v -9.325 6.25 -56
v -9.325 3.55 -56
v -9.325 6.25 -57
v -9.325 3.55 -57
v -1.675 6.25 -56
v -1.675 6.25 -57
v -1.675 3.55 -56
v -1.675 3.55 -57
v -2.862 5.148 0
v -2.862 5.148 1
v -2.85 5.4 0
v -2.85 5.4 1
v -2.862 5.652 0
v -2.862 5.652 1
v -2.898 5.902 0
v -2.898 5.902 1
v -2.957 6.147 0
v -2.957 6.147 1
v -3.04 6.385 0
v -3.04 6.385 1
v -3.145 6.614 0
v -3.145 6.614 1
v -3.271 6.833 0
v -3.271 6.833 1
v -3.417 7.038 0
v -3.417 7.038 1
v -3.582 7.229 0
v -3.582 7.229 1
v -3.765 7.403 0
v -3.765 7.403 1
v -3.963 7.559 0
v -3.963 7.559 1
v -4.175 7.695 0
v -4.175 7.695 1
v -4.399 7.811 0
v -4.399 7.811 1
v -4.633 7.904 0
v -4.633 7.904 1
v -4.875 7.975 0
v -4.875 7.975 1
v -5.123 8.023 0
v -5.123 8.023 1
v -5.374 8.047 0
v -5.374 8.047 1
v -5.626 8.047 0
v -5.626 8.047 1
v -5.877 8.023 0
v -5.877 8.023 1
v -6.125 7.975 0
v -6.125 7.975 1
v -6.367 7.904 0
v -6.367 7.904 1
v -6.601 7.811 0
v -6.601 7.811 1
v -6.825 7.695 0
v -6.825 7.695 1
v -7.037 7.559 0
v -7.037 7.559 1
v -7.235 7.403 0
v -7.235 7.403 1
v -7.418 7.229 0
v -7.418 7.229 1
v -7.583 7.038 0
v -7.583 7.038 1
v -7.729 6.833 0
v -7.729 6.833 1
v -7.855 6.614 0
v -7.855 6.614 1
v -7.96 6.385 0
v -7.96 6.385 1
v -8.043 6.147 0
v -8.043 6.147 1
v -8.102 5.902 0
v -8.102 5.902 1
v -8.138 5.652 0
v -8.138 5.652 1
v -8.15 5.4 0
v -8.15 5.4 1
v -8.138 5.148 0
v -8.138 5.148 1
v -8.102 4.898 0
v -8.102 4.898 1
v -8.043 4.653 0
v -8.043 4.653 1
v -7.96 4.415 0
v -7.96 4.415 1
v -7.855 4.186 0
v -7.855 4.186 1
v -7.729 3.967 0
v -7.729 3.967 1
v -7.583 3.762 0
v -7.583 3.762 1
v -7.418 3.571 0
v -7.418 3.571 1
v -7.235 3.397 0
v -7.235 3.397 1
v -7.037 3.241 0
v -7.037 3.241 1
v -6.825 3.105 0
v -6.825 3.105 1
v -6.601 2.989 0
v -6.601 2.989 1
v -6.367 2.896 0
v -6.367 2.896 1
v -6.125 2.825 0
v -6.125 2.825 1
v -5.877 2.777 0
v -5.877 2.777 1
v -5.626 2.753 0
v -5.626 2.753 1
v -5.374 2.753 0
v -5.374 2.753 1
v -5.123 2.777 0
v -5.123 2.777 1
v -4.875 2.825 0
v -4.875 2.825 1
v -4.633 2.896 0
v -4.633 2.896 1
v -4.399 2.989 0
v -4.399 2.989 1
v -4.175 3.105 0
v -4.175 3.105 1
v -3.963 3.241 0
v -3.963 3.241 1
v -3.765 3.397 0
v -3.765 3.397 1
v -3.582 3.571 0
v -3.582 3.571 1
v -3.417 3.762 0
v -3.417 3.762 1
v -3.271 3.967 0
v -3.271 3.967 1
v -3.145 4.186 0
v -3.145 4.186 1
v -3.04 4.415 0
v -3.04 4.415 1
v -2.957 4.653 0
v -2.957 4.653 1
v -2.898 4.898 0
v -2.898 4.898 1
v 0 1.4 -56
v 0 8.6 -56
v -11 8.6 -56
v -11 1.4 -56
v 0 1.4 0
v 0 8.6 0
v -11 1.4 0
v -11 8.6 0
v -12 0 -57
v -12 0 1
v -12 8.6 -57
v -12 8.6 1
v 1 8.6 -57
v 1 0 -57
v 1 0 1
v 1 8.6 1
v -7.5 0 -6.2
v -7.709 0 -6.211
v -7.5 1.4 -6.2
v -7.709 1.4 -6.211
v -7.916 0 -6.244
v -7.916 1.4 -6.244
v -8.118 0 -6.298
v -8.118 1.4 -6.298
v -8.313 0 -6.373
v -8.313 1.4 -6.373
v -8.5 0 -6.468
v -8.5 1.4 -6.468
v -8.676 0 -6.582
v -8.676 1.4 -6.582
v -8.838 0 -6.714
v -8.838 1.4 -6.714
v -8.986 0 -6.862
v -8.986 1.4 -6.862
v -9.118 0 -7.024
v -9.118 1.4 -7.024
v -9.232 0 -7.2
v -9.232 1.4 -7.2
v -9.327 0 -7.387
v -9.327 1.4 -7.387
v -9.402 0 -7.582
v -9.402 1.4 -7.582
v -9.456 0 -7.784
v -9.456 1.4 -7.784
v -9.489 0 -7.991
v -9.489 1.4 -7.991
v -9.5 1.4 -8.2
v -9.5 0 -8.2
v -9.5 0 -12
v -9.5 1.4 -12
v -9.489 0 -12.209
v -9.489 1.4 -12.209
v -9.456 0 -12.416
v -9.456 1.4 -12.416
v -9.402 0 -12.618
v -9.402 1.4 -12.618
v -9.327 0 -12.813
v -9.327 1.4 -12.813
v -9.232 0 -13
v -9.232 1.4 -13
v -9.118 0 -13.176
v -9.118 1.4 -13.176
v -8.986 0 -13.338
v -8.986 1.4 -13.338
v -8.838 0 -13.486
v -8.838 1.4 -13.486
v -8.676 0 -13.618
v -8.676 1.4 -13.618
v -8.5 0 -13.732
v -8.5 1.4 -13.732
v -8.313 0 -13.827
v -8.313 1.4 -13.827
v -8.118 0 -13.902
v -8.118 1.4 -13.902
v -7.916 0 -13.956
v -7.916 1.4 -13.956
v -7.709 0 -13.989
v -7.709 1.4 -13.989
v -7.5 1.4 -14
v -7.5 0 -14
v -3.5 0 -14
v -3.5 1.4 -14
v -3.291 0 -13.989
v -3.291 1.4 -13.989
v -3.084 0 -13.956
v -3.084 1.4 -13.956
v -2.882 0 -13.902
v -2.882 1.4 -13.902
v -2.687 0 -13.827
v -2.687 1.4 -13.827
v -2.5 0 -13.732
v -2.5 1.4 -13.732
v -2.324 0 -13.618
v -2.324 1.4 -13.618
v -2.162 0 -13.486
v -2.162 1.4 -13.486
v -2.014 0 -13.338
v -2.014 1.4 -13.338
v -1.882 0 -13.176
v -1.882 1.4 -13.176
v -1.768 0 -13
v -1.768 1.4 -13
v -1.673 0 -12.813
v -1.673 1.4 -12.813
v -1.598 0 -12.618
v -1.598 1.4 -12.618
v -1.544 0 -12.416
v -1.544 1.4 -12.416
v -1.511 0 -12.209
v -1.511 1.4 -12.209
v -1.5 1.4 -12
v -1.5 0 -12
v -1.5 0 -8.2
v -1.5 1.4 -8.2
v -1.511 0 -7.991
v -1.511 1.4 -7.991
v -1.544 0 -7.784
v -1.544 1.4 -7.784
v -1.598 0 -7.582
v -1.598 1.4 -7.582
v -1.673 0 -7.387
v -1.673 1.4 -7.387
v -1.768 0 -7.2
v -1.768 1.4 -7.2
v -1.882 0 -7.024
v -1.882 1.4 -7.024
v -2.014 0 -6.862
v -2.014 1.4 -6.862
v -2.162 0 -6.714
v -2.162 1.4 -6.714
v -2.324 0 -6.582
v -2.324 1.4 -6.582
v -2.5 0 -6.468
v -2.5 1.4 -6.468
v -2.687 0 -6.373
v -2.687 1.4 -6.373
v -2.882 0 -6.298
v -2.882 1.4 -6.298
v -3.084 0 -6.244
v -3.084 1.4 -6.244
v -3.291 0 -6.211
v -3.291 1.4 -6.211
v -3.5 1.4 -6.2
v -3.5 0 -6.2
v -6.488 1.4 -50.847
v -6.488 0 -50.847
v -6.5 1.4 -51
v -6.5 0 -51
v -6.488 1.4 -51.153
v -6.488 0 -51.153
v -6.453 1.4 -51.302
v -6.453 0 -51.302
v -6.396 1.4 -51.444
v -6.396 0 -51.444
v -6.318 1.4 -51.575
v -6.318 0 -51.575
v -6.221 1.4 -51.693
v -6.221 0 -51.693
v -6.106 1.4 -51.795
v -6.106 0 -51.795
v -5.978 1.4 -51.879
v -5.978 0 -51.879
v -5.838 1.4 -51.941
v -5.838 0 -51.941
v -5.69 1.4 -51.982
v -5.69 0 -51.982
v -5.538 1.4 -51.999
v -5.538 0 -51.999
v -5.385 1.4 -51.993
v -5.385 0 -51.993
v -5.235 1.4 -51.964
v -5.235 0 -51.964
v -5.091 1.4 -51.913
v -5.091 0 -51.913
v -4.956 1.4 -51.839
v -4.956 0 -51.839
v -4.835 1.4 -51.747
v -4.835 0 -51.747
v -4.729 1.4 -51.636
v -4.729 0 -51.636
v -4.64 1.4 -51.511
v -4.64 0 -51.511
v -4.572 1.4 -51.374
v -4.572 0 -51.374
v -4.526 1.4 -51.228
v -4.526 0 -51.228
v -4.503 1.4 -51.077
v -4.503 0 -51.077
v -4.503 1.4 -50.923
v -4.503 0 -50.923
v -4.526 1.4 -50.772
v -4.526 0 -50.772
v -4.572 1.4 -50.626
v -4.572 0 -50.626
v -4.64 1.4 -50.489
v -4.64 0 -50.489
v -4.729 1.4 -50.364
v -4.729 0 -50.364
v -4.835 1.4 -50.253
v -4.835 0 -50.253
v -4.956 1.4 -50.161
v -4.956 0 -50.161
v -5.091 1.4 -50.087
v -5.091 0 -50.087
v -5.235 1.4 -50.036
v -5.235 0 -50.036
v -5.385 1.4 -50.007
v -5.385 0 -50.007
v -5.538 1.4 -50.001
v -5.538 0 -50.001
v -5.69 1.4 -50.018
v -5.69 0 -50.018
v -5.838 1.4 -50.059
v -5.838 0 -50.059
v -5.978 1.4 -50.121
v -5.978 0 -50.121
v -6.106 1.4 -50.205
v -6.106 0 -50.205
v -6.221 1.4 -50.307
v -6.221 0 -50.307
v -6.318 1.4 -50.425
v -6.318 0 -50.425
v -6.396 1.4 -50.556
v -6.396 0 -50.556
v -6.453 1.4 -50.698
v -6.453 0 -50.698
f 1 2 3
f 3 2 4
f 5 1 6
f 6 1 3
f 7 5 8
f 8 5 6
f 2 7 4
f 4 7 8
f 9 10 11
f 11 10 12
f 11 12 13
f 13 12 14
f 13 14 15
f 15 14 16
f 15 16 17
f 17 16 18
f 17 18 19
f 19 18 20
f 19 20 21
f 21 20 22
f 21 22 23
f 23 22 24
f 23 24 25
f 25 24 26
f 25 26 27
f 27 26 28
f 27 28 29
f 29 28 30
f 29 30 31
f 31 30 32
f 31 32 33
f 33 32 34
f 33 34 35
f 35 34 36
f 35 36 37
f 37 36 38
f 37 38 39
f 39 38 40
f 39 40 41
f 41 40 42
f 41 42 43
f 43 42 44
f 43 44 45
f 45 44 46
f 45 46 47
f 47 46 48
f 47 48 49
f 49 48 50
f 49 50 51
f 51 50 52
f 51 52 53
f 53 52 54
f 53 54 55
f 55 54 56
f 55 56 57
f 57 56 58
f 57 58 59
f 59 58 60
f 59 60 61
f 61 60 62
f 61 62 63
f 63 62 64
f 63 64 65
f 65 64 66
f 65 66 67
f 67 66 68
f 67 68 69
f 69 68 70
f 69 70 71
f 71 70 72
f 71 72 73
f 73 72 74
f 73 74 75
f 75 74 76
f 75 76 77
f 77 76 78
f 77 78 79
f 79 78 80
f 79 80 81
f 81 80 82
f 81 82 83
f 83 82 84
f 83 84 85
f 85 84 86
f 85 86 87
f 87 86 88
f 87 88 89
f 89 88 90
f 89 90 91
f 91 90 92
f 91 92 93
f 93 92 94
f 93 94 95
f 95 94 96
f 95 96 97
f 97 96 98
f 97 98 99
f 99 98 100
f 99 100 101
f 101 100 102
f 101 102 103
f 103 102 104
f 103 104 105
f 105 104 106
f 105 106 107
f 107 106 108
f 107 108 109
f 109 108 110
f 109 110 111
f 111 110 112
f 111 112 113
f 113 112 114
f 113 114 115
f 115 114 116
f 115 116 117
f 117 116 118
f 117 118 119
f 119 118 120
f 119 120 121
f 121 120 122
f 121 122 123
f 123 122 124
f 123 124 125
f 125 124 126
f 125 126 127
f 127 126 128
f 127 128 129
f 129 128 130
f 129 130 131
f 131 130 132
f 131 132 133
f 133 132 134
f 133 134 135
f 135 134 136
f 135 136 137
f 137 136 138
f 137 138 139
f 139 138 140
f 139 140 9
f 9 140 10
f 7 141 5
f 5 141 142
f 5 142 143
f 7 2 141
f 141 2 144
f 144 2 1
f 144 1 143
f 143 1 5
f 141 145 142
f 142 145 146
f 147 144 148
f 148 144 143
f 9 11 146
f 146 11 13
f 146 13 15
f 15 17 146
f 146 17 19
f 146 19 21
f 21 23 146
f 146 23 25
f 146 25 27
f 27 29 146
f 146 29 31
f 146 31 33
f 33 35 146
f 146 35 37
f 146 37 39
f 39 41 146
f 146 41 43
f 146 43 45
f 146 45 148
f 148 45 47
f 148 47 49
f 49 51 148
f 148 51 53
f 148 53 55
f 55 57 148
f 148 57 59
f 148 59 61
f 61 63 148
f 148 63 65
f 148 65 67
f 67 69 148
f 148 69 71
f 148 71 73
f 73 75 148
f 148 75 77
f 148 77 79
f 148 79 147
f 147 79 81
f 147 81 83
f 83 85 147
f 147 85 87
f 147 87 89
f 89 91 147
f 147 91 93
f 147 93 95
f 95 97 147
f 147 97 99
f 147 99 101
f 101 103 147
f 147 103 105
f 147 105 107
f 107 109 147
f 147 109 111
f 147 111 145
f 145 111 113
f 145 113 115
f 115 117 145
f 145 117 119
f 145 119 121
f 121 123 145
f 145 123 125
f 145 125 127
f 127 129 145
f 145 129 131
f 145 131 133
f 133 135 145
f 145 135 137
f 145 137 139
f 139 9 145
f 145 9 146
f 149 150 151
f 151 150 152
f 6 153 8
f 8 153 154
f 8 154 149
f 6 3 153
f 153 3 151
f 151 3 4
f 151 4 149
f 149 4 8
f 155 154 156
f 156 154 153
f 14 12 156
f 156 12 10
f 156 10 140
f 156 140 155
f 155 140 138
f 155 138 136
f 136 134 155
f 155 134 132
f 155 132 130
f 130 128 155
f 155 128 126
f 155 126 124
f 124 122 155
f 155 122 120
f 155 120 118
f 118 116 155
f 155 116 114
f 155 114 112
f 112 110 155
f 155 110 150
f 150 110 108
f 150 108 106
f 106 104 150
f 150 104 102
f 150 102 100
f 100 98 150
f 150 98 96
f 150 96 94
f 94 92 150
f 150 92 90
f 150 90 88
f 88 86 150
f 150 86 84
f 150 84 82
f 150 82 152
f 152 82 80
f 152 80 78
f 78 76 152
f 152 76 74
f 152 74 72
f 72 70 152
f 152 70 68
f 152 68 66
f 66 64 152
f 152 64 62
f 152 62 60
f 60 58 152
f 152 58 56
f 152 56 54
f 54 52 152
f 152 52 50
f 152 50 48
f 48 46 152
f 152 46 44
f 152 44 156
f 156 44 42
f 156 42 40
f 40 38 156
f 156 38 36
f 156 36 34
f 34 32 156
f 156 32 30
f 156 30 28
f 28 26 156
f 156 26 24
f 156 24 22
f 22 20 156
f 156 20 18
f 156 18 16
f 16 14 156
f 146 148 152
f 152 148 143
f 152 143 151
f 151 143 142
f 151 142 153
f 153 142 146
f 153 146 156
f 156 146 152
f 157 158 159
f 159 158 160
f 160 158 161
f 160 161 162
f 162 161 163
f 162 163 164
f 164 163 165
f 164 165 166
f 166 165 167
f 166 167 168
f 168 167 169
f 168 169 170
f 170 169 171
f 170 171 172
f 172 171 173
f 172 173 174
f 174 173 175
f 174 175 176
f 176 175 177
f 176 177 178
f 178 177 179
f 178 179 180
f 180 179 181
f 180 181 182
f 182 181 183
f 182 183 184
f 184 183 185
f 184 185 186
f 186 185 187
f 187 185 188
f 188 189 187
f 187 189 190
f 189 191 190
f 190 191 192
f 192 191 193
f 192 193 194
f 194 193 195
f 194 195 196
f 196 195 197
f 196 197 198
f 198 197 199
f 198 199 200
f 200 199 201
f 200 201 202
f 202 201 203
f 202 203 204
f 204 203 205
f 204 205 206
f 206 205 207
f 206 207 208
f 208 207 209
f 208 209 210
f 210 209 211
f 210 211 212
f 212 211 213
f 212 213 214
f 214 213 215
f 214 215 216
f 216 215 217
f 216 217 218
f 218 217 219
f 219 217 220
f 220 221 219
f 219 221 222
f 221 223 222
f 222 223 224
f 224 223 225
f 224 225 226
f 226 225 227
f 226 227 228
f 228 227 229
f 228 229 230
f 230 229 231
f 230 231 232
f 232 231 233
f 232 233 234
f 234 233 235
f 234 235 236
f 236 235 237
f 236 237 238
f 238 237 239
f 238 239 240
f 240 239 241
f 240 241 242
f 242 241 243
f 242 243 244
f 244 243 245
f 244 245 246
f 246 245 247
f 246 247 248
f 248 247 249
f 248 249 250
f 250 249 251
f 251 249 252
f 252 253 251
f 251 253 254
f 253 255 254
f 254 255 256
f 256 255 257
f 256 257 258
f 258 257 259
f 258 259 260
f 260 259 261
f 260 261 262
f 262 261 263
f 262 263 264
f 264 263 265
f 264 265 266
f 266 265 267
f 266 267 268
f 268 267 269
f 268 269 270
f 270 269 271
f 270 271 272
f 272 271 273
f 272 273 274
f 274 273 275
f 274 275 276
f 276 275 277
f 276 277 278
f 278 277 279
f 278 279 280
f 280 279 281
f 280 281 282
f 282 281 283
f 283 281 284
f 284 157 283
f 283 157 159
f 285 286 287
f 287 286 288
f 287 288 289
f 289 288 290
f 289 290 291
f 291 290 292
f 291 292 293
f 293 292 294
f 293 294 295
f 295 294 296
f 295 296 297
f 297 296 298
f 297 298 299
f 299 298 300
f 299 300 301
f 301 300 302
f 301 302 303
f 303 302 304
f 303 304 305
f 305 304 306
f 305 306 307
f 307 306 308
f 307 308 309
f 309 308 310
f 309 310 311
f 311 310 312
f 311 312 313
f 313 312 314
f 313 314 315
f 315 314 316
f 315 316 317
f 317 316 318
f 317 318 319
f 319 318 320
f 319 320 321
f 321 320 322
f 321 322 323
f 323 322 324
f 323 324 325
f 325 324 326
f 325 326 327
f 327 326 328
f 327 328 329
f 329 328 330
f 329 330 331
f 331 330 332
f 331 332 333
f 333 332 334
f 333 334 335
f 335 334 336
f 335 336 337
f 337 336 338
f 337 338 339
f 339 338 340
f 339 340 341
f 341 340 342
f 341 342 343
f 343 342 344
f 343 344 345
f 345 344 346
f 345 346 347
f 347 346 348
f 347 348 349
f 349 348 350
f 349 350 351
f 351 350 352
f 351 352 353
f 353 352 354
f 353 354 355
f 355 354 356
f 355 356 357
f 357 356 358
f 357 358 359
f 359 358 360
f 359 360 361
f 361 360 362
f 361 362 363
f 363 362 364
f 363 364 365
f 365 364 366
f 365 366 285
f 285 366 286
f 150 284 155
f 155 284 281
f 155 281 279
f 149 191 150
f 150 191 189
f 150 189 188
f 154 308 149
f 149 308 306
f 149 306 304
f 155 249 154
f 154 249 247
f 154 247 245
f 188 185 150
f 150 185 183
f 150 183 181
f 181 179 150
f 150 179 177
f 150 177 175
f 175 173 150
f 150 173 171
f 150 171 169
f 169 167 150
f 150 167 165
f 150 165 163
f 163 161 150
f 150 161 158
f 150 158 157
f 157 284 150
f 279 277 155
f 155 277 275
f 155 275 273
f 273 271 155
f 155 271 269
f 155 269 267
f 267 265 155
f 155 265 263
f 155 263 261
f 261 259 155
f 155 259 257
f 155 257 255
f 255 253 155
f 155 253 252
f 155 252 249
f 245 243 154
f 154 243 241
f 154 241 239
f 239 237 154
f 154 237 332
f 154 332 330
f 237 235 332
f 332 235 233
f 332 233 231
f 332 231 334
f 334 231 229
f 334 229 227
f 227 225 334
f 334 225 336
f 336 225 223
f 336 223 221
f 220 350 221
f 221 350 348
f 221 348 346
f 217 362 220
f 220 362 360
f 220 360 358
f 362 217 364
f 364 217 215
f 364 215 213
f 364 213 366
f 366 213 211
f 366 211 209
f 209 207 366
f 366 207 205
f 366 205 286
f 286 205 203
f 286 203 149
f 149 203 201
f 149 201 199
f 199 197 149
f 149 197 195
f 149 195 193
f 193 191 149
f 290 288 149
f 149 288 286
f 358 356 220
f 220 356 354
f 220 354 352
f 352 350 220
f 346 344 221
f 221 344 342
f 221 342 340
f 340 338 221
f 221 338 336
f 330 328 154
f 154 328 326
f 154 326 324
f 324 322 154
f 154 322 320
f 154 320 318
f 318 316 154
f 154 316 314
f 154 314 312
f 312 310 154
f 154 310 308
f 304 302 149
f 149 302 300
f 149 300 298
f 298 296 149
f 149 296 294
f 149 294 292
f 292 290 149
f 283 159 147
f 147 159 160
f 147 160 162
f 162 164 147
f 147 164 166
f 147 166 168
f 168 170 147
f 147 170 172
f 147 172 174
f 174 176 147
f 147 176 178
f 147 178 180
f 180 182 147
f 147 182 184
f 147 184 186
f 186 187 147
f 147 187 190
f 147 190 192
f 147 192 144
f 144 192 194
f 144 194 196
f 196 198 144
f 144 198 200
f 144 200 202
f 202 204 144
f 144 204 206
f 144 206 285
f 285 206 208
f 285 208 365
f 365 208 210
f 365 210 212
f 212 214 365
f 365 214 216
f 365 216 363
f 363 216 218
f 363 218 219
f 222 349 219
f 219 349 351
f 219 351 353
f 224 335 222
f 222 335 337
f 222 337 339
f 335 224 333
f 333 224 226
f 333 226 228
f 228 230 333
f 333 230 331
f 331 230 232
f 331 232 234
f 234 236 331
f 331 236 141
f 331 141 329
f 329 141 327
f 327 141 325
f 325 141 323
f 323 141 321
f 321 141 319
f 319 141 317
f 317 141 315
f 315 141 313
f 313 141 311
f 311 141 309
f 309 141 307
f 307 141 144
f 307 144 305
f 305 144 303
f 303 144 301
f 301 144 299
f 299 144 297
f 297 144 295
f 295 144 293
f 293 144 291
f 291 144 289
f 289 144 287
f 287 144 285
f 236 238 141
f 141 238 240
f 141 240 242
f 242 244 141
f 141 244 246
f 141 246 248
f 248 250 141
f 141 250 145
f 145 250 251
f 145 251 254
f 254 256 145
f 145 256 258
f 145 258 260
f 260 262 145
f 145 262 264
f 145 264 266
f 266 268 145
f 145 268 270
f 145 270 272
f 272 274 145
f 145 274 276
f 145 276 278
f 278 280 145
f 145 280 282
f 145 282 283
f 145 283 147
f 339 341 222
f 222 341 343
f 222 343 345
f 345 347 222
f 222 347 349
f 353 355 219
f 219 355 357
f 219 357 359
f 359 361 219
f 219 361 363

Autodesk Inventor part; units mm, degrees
ref_plane "YZ Plane" through (0, 0, 0) normal (1, 0, 0) x (0, 1, 0)
ref_plane "XZ Plane" through (0, 0, 0) normal (0, 1, 0) x (-1, 0, 0)
ref_plane "XY Plane" through (0, 0, 0) normal (0, 0, 1) x (1, 0, 0)
sketch "Sketch3" plane through (0, 0, 0) normal (0, 1, 0) x (-1, 0, 0)
  line L0 (0, 0) -> (11, 0)
  line L1 (11, 0) -> (11, -56)
  line L2 (11, -56) -> (0, -56)
  line L3 (0, -56) -> (0, 0)
  line L4 (12, 1) -> (-1, 1)
  line L5 (-1, 1) -> (-1, -57)
  line L6 (-1, -57) -> (12, -57)
  line L7 (12, -57) -> (12, 1)
  line L8 (7.5, -6.2) -> (3.5, -6.2)
  line L9 (1.5, -8.2) -> (1.5, -12)
  line L10 (3.5, -14) -> (7.5, -14)
  line L11 (9.5, -12) -> (9.5, -8.2)
  arc A0 (9.5, -8.2) -> (7.5, -6.2) centre (7.5, -8.2) ccw
  arc A1 (7.5, -14) -> (9.5, -12) centre (7.5, -12) ccw
  arc A2 (1.5, -12) -> (3.5, -14) centre (3.5, -12) ccw
  arc A3 (3.5, -6.2) -> (1.5, -8.2) centre (3.5, -8.2) ccw
  circle A4 centre (5.5, -51) radius 1
  point P0 (1.5, -14)
  point P1 (1.5, -6.2)
  point P2 (9.5, -14)
  dimension "d2" = 11
  dimension "d3" = 56
  dimension "d4" = 1
  dimension "d5" = 1
  dimension "d6" = 1
  dimension "d7" = 1
  dimension "d8" = 8
  dimension "d9" = 7.8
  dimension "d10" = 14
  dimension "d11" = 9.5
  dimension "d12" = 2
  dimension "d30" = 2
  dimension "d31" = 5
  dimension "d32" = 5.5
extrude "Extrusion1" add sketch "Sketch3" along normal blind 1.4 contours L0 L1 L2 L3
extrude "Extrusion3" add sketch "Sketch3" along normal blind 8.6 contours L7 L6 L5 L4
sketch "Sketch4" plane through (-12, 0, 1) normal (0, 0, 1) x (1, 0, 0)
  circle A0 centre (6.5, 5.4) radius 2.65
  line L0 (0, 0) -> (0, 8.6) projected
  line L1 (0, 0) -> (13, 0) projected
  point P0 (12, 0)
  dimension "d19" = 6.5
  dimension "d20" = 5.3
  dimension "d21" = 5.4
extrude "Extrusion4" cut sketch "Sketch4" against normal blind 8.6
sketch "Sketch5" plane through (1, 0, -57) normal (0, 0, -1) x (-1, 0, 0)
  line L0 (2.675, 6.25) -> (10.325, 6.25)
  line L1 (10.325, 6.25) -> (10.325, 3.55)
  line L2 (10.325, 3.55) -> (2.675, 3.55)
  line L3 (2.675, 3.55) -> (2.675, 6.25)
  line L4 (0, 0) -> (13, 0) projected
  line L5 (13, 0) -> (13, 8.6) projected
  point P0 (1, 0)
  dimension "d24" = 7.65
  dimension "d25" = 2.7
  dimension "d26" = 3.55
  dimension "d27" = 2.675
extrude "Extrusion5" cut sketch "Sketch5" against normal blind 8.6
equation "\"d11\" = 0.5 * d2 + 0.5 * d8"
equation "\"d32\" = 0.5 * d2"
equation "\"d19\" = 0.5 * d2 + d4"
properties part number "QC25BTFication_1"
